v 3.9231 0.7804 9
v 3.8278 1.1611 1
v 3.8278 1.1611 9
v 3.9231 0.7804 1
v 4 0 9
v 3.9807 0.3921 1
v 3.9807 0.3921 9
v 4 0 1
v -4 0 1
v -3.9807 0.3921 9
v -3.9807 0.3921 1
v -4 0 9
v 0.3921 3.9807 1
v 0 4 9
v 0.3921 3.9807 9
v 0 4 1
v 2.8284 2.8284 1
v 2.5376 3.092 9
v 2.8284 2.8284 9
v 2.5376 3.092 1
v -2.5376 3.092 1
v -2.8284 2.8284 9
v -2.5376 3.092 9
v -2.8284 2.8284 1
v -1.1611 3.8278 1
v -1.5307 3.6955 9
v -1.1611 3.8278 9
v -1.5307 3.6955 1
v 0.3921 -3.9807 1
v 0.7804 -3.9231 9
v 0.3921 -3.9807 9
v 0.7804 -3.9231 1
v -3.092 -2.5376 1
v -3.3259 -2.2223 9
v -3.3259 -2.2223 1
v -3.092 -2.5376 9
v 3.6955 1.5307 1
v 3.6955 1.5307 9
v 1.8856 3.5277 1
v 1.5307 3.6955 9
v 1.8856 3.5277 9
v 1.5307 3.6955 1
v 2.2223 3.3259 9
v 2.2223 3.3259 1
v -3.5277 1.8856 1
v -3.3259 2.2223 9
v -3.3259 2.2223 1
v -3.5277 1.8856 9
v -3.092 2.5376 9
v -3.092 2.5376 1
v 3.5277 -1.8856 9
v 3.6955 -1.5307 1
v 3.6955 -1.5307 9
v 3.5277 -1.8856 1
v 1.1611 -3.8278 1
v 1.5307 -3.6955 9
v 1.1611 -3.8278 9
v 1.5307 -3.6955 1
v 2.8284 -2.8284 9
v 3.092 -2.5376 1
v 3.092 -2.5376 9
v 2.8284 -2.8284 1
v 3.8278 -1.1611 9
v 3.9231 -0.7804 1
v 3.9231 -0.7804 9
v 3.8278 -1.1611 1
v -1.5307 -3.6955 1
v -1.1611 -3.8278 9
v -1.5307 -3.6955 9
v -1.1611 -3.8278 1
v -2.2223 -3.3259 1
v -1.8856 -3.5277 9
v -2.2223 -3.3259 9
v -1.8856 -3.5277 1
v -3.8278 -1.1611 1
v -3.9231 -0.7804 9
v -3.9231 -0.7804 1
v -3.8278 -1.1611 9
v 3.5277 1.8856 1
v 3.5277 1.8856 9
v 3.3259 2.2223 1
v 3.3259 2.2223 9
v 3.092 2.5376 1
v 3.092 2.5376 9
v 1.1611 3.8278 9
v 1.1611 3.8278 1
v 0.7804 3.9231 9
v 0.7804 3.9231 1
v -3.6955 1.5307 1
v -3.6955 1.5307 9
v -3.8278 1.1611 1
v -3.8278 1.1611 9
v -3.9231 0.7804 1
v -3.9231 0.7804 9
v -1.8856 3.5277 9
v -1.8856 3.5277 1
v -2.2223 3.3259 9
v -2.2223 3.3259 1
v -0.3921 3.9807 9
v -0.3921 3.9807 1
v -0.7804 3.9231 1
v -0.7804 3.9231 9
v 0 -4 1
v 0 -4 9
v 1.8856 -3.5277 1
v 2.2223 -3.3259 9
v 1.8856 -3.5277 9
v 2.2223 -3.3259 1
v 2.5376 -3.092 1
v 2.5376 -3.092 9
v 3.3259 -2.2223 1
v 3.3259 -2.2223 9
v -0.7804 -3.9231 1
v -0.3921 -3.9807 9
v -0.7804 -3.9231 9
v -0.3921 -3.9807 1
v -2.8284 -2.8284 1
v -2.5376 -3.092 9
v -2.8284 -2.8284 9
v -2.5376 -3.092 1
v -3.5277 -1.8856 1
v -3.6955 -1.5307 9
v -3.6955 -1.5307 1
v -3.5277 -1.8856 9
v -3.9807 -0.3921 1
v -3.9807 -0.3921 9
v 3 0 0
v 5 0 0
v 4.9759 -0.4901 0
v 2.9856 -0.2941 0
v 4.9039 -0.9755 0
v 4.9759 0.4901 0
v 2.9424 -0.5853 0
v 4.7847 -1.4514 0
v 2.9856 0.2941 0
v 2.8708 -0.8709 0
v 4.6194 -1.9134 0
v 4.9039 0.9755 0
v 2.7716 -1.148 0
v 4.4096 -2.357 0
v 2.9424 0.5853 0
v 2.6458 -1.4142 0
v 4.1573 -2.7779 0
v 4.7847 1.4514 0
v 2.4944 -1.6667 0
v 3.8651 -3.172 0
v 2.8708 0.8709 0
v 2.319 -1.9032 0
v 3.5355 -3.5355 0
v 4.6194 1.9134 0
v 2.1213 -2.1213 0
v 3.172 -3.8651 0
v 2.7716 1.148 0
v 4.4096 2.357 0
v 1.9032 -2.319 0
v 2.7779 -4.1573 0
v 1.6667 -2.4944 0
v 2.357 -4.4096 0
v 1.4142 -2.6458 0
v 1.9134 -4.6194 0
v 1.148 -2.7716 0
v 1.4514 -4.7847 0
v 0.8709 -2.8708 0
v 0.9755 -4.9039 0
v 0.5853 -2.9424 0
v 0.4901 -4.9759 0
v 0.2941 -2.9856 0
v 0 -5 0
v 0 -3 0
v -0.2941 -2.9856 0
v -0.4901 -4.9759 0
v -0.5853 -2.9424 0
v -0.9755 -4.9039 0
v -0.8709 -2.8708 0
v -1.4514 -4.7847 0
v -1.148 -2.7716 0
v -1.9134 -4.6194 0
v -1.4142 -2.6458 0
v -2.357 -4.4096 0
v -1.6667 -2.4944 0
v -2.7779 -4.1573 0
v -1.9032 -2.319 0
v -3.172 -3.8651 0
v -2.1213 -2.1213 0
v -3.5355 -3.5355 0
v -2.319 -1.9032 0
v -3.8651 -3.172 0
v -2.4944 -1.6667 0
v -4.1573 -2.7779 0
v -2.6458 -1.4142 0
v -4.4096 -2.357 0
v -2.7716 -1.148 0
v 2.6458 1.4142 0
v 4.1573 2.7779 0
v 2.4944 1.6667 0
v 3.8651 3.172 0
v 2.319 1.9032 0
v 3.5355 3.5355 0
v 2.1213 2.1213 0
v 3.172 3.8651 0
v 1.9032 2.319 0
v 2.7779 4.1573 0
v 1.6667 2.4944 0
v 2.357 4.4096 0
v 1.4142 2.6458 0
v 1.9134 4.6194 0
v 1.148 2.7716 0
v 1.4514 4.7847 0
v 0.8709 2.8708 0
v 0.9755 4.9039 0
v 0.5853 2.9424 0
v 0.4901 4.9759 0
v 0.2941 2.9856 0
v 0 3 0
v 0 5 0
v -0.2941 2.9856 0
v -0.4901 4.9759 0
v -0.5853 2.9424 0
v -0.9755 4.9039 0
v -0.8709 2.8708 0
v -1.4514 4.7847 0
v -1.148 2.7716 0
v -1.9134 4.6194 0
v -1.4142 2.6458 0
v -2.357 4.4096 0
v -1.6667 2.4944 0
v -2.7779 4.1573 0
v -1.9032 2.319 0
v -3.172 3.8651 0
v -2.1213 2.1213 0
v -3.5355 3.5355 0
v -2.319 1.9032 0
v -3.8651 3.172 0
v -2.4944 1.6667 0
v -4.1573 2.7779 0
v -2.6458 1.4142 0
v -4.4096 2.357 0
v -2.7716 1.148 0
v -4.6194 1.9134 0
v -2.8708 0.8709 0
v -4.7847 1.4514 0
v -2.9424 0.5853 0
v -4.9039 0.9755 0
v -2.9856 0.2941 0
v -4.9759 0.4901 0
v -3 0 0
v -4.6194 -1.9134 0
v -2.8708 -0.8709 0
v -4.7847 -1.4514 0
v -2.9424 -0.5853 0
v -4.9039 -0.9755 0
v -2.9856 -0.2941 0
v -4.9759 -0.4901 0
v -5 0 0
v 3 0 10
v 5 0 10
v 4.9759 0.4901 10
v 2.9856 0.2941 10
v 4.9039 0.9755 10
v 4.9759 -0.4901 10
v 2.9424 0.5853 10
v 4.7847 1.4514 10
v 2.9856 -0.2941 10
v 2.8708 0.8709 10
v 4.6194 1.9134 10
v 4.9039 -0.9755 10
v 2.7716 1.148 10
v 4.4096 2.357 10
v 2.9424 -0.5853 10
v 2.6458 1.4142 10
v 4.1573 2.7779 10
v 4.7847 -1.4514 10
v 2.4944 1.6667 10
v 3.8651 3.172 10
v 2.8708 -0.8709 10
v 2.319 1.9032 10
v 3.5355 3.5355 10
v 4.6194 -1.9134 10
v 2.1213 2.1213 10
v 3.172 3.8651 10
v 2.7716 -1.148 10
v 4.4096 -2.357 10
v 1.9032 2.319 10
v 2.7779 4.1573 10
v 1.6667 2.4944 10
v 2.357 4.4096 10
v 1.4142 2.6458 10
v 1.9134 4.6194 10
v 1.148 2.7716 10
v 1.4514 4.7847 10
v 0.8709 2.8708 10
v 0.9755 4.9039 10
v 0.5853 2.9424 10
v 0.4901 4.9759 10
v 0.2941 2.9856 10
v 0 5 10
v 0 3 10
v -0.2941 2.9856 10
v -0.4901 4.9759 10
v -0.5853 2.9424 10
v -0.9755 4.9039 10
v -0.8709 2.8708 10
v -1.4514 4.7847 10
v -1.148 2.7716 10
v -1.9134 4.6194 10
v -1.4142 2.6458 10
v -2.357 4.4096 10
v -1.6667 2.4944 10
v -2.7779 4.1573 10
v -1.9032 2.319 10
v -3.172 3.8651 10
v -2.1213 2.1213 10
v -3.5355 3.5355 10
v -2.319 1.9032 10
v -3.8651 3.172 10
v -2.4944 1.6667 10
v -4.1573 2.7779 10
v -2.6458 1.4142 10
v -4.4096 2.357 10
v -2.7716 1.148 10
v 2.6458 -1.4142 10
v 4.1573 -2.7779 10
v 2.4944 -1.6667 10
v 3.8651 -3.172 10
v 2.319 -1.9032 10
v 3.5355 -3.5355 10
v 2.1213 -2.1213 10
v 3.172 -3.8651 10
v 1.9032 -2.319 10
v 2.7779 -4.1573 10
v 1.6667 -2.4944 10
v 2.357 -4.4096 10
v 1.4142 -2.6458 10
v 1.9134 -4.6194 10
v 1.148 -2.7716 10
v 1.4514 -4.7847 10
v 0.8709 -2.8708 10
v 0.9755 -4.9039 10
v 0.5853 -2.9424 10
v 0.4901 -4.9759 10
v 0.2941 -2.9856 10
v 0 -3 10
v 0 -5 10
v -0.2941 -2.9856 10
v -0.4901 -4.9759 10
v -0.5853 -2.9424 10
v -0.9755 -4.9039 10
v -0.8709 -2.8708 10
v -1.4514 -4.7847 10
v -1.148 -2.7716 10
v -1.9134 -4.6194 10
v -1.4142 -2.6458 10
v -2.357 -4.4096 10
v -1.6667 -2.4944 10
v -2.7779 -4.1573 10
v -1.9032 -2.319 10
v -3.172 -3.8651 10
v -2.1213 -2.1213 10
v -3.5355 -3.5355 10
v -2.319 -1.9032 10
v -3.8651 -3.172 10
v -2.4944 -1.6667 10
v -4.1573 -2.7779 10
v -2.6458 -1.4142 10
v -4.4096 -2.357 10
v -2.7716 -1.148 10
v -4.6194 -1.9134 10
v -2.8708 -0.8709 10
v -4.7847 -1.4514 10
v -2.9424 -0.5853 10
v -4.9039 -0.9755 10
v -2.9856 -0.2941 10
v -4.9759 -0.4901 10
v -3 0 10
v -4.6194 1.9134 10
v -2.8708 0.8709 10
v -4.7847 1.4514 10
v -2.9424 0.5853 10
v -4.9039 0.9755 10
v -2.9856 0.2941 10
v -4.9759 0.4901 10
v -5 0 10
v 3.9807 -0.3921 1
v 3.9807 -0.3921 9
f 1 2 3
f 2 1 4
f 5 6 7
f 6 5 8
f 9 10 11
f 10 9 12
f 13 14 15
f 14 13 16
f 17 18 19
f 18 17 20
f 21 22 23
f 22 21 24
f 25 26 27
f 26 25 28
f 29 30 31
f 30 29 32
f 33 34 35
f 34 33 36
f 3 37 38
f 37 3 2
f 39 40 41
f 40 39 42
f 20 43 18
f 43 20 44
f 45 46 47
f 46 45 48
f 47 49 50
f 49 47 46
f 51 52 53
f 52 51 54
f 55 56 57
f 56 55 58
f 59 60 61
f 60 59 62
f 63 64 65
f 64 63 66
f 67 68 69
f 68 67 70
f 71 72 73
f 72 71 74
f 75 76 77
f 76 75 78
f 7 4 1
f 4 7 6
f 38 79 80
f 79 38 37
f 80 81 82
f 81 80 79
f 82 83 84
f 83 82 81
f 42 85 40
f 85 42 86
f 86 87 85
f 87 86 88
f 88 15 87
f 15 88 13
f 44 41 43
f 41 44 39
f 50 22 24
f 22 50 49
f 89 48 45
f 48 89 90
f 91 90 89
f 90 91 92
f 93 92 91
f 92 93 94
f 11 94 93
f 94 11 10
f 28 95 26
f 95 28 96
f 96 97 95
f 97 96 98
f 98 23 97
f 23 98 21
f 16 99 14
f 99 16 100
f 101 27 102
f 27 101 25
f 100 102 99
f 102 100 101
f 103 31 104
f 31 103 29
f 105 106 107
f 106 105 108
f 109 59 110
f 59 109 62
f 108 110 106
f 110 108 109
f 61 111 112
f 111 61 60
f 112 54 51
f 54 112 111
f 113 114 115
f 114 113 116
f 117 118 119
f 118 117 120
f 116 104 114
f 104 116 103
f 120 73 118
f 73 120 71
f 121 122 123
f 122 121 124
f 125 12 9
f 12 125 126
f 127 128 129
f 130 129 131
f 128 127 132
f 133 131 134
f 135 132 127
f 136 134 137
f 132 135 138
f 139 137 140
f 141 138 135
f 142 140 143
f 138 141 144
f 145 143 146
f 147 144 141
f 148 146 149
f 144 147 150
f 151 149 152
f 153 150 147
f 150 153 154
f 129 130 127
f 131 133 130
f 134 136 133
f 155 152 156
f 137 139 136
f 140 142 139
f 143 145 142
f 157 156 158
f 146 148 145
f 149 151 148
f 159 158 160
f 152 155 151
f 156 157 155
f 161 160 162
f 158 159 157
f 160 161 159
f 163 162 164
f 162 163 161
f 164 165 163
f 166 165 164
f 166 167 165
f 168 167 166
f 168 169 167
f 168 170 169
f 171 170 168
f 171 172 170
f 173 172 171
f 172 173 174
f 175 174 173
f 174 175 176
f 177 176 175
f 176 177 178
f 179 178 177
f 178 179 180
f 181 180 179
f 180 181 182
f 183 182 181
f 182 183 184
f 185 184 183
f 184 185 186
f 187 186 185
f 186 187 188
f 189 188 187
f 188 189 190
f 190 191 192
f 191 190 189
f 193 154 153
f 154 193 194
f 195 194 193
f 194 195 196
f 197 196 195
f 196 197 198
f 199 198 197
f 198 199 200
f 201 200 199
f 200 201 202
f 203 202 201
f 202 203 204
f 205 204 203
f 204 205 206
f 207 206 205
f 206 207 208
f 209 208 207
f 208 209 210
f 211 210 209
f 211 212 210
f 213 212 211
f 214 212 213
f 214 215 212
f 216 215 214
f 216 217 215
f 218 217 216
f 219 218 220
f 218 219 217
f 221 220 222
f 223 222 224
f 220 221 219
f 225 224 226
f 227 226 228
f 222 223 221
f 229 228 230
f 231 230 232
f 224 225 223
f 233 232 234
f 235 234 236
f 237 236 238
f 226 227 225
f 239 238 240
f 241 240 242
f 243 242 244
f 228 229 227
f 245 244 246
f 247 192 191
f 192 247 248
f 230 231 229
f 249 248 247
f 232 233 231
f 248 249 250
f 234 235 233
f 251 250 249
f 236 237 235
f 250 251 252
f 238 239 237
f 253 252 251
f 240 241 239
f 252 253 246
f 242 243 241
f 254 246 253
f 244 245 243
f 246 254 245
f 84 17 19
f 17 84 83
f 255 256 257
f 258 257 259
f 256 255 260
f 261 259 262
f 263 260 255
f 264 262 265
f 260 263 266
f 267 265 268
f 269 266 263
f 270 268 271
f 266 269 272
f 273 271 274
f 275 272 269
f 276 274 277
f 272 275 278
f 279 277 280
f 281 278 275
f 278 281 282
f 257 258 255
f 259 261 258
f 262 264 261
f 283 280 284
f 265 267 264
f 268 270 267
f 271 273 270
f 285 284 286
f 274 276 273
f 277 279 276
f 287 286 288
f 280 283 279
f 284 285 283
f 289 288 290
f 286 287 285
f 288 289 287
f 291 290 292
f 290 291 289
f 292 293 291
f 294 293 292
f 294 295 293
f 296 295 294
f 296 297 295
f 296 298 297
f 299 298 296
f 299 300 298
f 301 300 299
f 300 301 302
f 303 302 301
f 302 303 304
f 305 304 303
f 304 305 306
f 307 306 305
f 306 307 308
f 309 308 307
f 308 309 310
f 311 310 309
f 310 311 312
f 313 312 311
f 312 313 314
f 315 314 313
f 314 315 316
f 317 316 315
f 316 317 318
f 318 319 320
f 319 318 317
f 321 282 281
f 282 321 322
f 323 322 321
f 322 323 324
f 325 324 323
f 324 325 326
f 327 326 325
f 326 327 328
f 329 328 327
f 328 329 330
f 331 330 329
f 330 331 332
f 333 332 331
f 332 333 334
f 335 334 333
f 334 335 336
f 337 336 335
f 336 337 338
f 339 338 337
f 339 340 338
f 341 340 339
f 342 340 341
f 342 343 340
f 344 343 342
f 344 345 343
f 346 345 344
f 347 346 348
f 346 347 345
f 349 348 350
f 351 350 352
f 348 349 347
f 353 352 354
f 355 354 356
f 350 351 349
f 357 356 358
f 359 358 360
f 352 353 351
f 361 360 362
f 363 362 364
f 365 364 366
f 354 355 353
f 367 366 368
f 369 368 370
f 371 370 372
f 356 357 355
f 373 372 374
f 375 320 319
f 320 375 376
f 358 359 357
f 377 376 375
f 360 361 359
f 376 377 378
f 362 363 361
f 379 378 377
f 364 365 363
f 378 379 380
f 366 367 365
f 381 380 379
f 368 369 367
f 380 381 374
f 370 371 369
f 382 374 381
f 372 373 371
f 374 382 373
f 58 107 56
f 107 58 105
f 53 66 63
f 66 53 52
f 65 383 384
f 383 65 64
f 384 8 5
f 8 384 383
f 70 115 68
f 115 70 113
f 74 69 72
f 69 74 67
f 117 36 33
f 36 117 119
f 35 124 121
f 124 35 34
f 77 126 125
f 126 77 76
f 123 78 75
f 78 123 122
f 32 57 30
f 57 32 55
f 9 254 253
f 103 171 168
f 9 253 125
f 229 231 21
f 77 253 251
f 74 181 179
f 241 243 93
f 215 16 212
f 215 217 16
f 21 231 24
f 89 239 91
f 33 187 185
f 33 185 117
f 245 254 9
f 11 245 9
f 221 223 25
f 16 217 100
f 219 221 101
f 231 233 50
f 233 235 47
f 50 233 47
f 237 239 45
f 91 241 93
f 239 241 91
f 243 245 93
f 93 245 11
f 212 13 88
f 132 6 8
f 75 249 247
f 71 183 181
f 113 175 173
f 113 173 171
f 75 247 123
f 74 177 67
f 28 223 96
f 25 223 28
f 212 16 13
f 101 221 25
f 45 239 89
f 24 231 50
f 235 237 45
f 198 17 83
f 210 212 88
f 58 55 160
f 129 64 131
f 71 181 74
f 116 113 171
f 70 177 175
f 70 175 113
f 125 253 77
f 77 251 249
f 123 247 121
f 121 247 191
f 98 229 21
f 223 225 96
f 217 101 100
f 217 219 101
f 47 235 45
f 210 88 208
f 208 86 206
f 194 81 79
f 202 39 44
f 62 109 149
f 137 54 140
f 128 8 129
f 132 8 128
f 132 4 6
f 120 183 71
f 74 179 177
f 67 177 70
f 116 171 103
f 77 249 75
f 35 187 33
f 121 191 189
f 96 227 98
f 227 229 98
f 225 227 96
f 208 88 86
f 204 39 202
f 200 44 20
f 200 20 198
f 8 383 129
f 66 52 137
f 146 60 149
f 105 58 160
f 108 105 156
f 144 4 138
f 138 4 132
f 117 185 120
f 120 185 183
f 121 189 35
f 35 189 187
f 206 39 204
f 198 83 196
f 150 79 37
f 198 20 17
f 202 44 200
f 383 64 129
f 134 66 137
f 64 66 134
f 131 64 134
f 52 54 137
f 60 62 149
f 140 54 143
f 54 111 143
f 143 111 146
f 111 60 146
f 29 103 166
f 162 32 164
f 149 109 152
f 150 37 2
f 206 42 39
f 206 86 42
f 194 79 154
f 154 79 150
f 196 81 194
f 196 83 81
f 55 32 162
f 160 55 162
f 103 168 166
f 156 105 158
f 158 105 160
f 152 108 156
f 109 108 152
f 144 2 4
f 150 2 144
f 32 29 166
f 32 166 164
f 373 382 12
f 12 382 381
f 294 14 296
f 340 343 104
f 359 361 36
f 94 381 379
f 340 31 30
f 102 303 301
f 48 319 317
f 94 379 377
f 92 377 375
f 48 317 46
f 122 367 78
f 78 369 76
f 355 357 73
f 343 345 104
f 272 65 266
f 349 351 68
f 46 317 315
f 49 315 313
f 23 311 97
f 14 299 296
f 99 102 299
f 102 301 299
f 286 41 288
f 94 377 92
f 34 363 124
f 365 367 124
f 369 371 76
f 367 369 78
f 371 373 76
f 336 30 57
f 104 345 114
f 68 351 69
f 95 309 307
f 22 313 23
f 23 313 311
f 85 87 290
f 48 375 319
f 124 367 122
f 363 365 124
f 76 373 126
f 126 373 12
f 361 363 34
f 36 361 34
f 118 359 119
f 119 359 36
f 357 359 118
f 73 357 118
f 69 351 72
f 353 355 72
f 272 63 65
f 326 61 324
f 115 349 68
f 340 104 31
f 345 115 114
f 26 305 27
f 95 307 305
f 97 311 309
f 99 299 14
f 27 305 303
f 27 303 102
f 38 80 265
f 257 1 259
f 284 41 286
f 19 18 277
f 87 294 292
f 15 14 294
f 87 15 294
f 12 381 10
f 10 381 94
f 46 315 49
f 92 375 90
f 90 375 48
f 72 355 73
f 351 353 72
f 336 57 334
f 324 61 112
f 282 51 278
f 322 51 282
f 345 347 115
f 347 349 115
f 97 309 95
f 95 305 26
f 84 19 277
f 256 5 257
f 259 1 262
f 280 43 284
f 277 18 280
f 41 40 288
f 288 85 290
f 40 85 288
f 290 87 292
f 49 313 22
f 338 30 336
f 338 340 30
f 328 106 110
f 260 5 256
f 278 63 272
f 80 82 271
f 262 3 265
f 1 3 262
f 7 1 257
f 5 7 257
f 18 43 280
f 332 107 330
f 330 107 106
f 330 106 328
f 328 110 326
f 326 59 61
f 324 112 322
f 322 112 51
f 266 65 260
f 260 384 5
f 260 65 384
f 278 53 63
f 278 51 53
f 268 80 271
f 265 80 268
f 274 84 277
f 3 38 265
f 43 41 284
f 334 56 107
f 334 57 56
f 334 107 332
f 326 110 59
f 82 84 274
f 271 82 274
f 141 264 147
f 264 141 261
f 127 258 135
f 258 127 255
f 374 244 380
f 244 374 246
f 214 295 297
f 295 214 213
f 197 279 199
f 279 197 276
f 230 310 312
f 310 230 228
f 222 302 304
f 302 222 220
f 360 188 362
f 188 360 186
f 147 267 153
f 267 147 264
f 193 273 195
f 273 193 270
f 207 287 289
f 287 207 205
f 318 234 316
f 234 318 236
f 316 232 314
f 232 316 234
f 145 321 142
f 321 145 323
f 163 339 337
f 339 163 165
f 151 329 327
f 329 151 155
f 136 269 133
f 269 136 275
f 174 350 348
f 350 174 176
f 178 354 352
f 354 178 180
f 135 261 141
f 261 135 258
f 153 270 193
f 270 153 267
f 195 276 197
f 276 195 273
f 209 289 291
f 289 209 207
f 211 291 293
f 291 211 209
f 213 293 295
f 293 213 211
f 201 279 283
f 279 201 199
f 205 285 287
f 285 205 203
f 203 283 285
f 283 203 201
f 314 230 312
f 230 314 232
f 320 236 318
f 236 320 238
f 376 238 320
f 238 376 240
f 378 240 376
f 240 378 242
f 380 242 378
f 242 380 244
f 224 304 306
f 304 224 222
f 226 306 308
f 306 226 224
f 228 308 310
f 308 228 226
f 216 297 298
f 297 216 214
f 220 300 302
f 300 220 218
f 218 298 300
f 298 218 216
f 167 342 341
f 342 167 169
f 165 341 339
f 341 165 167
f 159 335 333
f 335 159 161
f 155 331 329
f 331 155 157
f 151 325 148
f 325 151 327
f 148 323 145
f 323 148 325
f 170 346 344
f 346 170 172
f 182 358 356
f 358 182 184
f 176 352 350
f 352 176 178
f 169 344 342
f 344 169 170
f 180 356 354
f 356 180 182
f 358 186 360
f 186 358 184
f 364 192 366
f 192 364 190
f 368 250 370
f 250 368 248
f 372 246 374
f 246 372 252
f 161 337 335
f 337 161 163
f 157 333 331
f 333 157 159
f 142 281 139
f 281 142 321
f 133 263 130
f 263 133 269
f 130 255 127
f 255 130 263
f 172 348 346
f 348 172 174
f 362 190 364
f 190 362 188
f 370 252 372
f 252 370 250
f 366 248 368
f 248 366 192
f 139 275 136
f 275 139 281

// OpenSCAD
// Parametric clear Pulley
// by Semchenkov Alexander

// tuneable constants

pulley_dia = 8;
shaft_dia = 6;// NEMA17 motor shaft exact diameter = 5
height = 8;   // length of toothed part of pulley, standard = 12

retainer = 0.5;     // Belt retainer above teeth, 0 = No, 1 = Yes
retainer_ht = 1;   // height of retainer flange over pulley, standard = 1.5
idler = 0.5;            // Belt retainer below teeth, 0 = No, 1 = Yes
idler_ht = 1;     // height of idler flange over pulley, standard = 1.5

base_ht = 0;    
base_dia = 0; // pulley base diameter, standard = 20; 0 for Auto

pulley();

module pulley(){
     y = 0;
     fn = pulley_dia*8;
    
     difference(){
         union(){
            cylinder(d=pulley_dia,h=height+base_ht+retainer_ht+idler_ht, $fn=fn);
            //base
            if ( base_ht > 0 ){
                if ( base_dia == 0 ) {
                    cylinder(d=pulley_dia + 2*idler,h=base_ht, $fn=fn);
                } else {
                    cylinder(d=base_dia,h=base_ht, $fn=fn);
                }
            }
           
            //belt retainer / idler
            if ( idler > 0 ) {
                translate ([0,0,base_ht]) 
                    rotate_extrude($fn=fn)  
                        polygon([[0,0],[pulley_dia/2+idler_ht,0],[pulley_dia/2 , idler_ht],[0 , idler_ht],[0,0]]);
            }
            
            if ( retainer > 0 ) {
                translate ([0,0,base_ht+idler_ht+height]) 
                    rotate_extrude($fn=fn)  
                        polygon([[0,0],[pulley_dia/2,0],[pulley_dia/2+retainer_ht, retainer_ht],[0 , retainer_ht],[0,0]]);
            }
        }

        translate([0,0,0]) 
        cylinder(d=shaft_dia,h=height+base_ht+retainer_ht+idler_ht, $fn=fn);
    }
 }
